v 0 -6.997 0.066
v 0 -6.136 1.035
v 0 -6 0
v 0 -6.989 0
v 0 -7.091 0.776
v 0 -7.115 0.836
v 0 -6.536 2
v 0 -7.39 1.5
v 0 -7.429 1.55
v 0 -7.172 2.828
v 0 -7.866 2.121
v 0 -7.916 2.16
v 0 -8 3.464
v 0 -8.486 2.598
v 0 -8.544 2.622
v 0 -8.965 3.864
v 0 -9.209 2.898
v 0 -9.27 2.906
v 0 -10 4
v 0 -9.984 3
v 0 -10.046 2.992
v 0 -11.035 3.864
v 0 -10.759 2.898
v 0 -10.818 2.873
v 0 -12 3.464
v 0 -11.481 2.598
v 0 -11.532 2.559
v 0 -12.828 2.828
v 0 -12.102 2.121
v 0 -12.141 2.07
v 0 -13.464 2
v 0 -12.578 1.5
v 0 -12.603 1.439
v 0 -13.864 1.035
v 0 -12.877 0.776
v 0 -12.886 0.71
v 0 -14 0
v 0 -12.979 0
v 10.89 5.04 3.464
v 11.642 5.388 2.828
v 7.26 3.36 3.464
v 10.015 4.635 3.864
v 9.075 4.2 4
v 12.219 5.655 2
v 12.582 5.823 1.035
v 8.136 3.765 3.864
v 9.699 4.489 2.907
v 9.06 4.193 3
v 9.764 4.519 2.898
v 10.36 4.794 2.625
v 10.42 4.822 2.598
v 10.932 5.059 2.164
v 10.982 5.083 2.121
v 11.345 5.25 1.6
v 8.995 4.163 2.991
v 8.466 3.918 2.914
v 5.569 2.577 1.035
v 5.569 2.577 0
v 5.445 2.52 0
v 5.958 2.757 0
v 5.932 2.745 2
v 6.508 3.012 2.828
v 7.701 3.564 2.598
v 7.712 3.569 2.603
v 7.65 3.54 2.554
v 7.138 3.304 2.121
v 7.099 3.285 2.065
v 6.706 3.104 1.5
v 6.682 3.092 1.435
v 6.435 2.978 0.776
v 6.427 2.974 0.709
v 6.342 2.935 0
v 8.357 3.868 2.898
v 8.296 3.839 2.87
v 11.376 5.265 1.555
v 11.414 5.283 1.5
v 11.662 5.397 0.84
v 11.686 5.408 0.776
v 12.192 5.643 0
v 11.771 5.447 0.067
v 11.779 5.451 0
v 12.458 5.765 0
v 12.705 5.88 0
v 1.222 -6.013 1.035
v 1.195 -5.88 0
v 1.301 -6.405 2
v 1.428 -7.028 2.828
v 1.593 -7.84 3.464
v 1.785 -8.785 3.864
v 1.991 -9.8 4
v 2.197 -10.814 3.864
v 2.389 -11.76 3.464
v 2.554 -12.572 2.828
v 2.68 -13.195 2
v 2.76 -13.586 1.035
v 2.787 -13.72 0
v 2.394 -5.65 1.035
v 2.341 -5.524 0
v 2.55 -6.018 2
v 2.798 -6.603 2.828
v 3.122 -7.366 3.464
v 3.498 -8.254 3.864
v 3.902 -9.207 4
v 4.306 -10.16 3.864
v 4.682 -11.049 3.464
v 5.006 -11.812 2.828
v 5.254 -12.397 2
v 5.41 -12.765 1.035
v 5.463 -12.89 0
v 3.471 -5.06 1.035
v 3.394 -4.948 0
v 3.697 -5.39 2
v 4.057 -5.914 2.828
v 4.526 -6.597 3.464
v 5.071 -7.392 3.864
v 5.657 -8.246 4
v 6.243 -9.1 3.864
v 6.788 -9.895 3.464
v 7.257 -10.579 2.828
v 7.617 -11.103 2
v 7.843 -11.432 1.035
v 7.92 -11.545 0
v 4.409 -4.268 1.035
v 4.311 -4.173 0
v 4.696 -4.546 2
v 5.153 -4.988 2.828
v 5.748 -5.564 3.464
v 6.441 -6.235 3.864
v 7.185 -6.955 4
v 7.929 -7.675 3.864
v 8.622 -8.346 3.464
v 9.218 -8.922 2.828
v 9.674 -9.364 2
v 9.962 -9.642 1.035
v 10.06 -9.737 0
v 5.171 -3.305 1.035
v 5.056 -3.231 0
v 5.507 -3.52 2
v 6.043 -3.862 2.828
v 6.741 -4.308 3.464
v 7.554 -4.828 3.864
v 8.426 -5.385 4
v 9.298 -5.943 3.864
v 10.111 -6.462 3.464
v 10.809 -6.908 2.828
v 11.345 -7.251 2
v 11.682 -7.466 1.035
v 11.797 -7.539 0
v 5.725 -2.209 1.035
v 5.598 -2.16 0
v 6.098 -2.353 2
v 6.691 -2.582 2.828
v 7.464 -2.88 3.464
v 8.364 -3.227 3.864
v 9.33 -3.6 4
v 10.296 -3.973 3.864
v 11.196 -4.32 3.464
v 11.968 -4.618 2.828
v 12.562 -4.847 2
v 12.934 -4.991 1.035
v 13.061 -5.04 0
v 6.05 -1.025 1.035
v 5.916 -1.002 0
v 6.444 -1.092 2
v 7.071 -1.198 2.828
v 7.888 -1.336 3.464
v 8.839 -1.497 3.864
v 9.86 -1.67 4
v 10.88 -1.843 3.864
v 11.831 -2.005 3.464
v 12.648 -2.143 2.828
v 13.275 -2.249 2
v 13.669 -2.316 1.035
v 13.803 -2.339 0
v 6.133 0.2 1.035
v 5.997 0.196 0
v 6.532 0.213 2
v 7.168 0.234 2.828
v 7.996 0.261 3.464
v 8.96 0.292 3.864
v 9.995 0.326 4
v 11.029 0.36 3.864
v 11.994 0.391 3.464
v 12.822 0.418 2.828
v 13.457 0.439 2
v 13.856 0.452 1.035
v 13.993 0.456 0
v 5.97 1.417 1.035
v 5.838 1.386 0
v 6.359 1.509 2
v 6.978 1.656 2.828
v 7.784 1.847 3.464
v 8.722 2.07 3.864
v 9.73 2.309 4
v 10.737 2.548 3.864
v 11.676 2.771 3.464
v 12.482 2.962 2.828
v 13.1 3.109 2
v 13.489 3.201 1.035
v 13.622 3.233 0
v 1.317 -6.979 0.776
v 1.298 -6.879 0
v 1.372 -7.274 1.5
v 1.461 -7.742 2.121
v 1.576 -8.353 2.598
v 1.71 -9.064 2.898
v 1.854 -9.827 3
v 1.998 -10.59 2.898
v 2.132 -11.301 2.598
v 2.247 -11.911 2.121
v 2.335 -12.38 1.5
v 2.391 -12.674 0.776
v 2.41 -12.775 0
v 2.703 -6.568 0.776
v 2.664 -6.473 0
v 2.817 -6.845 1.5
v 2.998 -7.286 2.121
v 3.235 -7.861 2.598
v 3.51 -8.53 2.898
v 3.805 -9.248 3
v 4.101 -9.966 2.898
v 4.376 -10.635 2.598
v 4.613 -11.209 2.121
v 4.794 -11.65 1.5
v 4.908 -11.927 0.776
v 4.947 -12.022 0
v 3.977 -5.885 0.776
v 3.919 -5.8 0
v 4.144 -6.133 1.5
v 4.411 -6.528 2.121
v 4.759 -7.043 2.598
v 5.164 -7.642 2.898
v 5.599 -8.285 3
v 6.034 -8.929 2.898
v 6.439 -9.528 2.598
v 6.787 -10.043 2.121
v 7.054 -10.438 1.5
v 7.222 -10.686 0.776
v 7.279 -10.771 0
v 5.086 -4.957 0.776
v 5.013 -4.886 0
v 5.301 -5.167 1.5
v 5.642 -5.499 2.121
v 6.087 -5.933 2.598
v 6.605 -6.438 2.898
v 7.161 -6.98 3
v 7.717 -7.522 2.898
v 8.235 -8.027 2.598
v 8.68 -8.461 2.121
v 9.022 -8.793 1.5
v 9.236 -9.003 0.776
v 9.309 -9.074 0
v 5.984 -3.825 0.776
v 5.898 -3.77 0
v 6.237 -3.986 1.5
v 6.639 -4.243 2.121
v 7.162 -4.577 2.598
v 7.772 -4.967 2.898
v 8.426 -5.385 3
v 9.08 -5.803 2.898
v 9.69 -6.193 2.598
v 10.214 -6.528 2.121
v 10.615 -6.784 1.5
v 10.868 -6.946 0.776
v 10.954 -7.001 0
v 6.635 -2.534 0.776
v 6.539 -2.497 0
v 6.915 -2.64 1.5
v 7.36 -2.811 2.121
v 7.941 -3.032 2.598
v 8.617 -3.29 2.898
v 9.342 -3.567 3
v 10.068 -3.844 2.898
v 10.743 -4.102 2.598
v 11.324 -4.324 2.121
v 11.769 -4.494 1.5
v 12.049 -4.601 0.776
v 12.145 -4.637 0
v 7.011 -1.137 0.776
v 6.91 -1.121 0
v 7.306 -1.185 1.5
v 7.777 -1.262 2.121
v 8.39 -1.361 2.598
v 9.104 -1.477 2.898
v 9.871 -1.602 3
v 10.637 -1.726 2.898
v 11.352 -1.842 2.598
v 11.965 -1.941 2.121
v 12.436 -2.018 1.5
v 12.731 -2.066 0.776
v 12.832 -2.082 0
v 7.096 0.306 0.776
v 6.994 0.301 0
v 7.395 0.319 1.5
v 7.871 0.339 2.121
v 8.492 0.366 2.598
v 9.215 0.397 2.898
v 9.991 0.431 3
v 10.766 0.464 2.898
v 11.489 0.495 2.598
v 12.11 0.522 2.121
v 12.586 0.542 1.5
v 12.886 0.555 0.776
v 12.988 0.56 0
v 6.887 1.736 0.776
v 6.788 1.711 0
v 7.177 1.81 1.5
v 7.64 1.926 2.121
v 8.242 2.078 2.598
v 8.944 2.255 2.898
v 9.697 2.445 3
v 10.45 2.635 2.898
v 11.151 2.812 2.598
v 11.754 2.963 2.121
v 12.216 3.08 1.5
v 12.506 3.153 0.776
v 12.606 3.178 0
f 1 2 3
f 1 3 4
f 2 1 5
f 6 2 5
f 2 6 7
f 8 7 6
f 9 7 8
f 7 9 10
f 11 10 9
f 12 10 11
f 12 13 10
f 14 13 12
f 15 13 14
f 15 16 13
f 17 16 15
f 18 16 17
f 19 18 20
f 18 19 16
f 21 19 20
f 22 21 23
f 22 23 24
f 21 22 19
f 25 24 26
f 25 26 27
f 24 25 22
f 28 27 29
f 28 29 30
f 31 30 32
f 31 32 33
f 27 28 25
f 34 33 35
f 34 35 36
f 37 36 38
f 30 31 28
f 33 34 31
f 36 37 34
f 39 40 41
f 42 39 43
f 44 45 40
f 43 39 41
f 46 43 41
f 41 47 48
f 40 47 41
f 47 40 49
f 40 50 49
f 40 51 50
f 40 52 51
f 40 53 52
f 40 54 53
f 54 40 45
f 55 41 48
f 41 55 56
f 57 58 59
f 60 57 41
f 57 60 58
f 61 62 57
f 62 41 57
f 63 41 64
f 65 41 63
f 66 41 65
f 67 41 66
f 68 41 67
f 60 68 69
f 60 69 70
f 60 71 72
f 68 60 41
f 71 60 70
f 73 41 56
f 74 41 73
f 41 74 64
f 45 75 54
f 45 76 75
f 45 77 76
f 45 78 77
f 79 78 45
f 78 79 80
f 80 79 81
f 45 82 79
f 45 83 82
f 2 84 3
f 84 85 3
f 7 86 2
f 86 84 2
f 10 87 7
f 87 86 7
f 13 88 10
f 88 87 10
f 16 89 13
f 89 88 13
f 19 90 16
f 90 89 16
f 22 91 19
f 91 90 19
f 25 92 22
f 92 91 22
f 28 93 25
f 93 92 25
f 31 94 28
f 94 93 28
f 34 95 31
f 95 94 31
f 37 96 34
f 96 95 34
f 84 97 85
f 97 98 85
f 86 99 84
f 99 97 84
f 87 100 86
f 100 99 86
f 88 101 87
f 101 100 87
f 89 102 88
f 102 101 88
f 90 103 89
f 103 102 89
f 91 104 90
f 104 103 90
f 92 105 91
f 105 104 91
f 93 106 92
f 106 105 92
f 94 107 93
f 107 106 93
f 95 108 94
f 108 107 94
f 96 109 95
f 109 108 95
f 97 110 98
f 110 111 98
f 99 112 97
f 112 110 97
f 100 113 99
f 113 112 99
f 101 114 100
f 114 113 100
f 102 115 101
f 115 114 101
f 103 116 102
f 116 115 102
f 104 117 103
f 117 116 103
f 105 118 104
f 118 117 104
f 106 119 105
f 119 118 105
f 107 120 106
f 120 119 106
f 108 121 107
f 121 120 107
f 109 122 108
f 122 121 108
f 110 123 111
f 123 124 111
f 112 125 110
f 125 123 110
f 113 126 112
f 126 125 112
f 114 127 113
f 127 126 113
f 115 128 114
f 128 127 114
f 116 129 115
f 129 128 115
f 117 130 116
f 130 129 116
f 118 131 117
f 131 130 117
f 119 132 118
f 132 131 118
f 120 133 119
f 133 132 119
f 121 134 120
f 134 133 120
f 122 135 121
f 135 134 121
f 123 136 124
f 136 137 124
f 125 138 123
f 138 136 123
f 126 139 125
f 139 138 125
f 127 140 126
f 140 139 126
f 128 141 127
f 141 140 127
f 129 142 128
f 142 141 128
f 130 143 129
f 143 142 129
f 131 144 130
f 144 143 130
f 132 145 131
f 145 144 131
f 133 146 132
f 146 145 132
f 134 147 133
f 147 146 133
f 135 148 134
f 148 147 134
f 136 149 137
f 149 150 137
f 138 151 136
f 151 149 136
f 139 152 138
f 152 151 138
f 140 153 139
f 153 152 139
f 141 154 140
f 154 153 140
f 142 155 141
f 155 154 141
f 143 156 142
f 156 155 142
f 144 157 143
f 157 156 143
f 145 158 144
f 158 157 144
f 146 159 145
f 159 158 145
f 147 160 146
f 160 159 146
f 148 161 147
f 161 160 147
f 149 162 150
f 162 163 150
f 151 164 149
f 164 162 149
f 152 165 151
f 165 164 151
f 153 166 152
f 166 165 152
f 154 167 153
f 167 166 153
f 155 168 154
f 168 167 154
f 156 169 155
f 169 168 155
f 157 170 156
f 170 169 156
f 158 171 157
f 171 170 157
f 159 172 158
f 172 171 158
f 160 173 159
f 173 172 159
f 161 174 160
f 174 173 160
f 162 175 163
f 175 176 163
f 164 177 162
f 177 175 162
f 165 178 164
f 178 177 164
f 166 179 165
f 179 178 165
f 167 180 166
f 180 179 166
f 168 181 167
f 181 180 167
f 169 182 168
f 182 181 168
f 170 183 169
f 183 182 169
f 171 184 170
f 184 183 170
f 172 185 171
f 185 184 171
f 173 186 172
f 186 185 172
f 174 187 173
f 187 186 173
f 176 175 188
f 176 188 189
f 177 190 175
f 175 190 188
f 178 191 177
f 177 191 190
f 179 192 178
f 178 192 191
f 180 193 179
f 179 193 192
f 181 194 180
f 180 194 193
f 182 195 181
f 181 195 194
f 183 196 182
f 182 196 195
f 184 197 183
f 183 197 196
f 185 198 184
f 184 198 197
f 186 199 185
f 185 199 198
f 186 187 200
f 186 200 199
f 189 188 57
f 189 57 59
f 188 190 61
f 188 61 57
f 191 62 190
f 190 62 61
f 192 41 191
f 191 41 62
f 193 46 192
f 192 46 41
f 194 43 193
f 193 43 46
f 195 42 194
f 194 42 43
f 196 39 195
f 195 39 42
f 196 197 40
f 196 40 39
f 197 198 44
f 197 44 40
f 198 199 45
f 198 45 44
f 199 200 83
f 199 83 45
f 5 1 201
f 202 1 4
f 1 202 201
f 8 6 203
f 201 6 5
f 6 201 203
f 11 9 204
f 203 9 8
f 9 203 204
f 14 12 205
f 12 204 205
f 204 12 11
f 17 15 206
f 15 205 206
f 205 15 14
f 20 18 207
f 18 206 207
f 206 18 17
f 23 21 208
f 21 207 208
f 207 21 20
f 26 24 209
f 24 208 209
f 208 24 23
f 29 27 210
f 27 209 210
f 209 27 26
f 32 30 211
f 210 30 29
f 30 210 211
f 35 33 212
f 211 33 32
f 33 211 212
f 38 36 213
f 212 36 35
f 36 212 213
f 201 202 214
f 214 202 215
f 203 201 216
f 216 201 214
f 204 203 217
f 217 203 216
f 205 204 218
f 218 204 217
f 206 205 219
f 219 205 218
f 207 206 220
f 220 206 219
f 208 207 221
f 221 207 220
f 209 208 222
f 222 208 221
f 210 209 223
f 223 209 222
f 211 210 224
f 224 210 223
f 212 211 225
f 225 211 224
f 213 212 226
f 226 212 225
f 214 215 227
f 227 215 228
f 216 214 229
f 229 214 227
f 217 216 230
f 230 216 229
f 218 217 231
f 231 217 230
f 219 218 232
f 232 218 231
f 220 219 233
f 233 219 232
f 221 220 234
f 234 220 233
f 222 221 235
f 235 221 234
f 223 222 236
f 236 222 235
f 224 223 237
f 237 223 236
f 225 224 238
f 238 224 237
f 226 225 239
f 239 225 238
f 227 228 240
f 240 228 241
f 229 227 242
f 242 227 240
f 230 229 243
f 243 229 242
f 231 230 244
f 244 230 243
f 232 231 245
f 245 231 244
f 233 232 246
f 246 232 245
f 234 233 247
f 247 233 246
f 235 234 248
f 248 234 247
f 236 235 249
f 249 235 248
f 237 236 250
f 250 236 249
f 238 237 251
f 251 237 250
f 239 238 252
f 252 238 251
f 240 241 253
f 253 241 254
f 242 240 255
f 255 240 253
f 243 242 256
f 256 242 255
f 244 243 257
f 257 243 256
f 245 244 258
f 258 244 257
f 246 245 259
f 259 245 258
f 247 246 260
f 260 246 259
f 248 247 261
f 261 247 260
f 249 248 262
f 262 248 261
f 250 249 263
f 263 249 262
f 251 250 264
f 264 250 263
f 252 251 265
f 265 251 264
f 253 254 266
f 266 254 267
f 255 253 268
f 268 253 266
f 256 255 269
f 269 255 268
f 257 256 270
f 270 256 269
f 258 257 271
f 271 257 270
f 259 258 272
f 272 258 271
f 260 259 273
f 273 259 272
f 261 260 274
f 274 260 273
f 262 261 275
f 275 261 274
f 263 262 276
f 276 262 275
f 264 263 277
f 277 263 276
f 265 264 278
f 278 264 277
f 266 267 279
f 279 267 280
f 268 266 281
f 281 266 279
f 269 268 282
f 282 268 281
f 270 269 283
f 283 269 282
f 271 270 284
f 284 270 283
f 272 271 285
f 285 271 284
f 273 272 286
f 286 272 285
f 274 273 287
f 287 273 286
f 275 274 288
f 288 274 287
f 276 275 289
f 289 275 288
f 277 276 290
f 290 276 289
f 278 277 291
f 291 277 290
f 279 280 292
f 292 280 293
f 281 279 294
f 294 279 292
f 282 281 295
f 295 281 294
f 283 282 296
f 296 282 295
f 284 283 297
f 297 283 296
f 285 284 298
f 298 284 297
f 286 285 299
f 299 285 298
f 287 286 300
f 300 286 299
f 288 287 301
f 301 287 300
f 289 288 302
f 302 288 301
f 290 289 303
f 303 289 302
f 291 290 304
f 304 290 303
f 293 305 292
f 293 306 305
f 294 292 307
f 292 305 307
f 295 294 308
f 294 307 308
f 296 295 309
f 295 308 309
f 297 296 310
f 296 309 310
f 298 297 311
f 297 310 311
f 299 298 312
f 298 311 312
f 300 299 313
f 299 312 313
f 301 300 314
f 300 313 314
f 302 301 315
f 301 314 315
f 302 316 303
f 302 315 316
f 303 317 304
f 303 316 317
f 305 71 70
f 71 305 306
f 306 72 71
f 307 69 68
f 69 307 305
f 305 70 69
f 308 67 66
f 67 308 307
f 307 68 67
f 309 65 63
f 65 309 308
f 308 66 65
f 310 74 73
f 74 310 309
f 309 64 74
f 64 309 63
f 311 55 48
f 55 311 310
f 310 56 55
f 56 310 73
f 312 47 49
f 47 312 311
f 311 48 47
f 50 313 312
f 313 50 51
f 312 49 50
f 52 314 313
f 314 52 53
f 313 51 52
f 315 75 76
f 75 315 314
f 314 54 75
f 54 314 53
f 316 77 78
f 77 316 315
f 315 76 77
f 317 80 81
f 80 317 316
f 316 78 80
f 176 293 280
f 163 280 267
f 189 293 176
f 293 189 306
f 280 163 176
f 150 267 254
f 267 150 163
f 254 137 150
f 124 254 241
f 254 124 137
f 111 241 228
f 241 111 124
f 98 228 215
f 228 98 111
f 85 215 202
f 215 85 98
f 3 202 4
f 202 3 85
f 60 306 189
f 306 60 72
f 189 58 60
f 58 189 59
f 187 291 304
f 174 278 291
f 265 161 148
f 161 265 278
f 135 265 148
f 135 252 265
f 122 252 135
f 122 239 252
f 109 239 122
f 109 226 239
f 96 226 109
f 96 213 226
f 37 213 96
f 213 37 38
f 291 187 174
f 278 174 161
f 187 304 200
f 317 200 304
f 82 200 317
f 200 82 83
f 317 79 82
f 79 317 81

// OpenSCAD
// file: ../build_environments.scad
// build_environments.scad: modules to build level sections
//

module pool(diameter=10.0, wall_height=2.0, step_width=3.0, connections=[])
{
    difference() {
        union() {
        difference() {
            cylinder(h=0.5,r1=diameter+step_width,r2=diameter+step_width,$fn=48);
            translate([0,0,-0.1])
                cylinder(h=0.7,r1=diameter,r2=diameter,$fn=48);
        }
        difference() {
            cylinder(h=wall_height,r1=diameter+step_width+1.0,r2=diameter+step_width+1.0,$fn=48);
            translate([0,0,-0.1])
                cylinder(h=wall_height+0.2,r1=diameter+step_width,r2=diameter+step_width,$fn=48);
        }
        }
    
        for (c = connections)
        {
            rotate([0,90,0]) {
                angle = atan2(c[1],c[0]);
                rotate([-angle,0,0]) {
                    cylinder(h=diameter+5.0,r1=c[2],r2=c[2],$fn=48);
                }
            }
        }
    }
}

module straight(length=10.0, width=2.0, dy1=0.0, dy2=0.0, dz=0.0)
{
    dims = [0, 0, 0, 0, 0, (dz/length)];
    matrix = [
        [ 1, dims[0], dims[1], 0 ],
        [ dims[2], 1, dims[4], 0 ],
        [ dims[5], dims[3], 1, 0 ],
        [ 0, 0, 0, 1 ]
    ];
    multmatrix(matrix)
    difference() {
        translate([dy1,0,0])
        union() {
            rotate([0,90,0]) {
                difference() {
                    cylinder(h=(length-dy1-dy2),r1=width+1.0,r2=width+1.0,$fn=24);
                    translate([0,0,-0.1])
                        cylinder(h=(length-dy1-dy2+0.2),r1=width,r2=width,$fn=24);
                }
                difference() {
                    cylinder(h=1.0,r1=width+2.0,r2=width+2.0,$fn=24);
                    translate([0,0,-0.1])
                        cylinder(h=1.2,r1=width,r2=width,$fn=24);
                }
                translate([0,0,(length-dy1-dy2)-1.0]) {
                    difference() {
                        cylinder(h=1.0,r1=width+2.0,r2=width+2.0,$fn=24);
                        translate([0,0,-0.1])
                            cylinder(h=1.2,r1=width,r2=width,$fn=24);
                    }
                }
            }
        }
        translate([0,0,-(2*width+4.0)/2])
            cube([3*length,3*length,2*width+4.0],center=true);
    }
}

module curve(p0=[0,0], center=[0,0], dir=1, angle=0.0, width=2.0)
{
    radius = sqrt((p0[0]-center[0])*(p0[0]-center[0]) + (p0[1]-center[1])*(p0[1]-center[1]));
    if (dir == 0) {
        difference() {
            rotate([0,0,-90])
            difference() {
                rotate_extrude(angle = angle, convexity = 10, $fn=32)
                    translate([radius, 0, 0])
                        circle(r = width+1.0,$fn=24);
                rotate([0,0,-1.0])
                    rotate_extrude(angle = angle+2.0, convexity = 10, $fn=32)
                        translate([radius, 0, 0])
                            circle(r = width,$fn=24);
            }
            translate([0,0,-(2*width+4.0)/2])
                cube([5*radius,5*radius,2*width+4.0],center=true);
        }
    }
    else {
        difference() {
            rotate([0,0,90])
            difference() {
                rotate_extrude(angle = -angle, convexity = 10, $fn=32)
                    translate([radius, 0, 0])
                        circle(r = width+1.0,$fn=24);
                rotate([0,0,1.0])
                    rotate_extrude(angle = -angle-2.0, convexity = 10, $fn=32)
                        translate([radius, 0, 0])
                            circle(r = width,$fn=24);
            }
            translate([0,0,-(2*width+4.0)/2])
                cube([5*radius,5*radius,2*width+4.0],center=true);
        }
    }

}

// test pool
//pool(diameter=12.0000, wall_height=3.0000, step_width=3.0000, connections=[[0.0000,-26.0000,2.0000], [23.6074,0.0000,2.0000]]);

// test straight, slope
//straight(length=26.0000, width=2.0000, dy1=11.8322, dy2=6.7082, dz=0.0000);
//straight(length=29.1549, width=12.0000, dy1=0.0000, dy2=0.0000, dz=-15.0000);

// test curve
//curve(p0=[23.6074, 0.0000], center=[23.6074, 5.0000], dir=0, angle=60.1011, width=2.0000);
//curve(p0=[33.6426, 12.4219], center=[37.9771, 9.9295], dir=1, angle=120.4627, width=2.0000);
// main file
use <../build_environments.scad>;
curve(p0=[-3.4246, 80.6683], center=[-12.7438, 84.2950], dir=0, angle=114.8344, width=3.0000);
